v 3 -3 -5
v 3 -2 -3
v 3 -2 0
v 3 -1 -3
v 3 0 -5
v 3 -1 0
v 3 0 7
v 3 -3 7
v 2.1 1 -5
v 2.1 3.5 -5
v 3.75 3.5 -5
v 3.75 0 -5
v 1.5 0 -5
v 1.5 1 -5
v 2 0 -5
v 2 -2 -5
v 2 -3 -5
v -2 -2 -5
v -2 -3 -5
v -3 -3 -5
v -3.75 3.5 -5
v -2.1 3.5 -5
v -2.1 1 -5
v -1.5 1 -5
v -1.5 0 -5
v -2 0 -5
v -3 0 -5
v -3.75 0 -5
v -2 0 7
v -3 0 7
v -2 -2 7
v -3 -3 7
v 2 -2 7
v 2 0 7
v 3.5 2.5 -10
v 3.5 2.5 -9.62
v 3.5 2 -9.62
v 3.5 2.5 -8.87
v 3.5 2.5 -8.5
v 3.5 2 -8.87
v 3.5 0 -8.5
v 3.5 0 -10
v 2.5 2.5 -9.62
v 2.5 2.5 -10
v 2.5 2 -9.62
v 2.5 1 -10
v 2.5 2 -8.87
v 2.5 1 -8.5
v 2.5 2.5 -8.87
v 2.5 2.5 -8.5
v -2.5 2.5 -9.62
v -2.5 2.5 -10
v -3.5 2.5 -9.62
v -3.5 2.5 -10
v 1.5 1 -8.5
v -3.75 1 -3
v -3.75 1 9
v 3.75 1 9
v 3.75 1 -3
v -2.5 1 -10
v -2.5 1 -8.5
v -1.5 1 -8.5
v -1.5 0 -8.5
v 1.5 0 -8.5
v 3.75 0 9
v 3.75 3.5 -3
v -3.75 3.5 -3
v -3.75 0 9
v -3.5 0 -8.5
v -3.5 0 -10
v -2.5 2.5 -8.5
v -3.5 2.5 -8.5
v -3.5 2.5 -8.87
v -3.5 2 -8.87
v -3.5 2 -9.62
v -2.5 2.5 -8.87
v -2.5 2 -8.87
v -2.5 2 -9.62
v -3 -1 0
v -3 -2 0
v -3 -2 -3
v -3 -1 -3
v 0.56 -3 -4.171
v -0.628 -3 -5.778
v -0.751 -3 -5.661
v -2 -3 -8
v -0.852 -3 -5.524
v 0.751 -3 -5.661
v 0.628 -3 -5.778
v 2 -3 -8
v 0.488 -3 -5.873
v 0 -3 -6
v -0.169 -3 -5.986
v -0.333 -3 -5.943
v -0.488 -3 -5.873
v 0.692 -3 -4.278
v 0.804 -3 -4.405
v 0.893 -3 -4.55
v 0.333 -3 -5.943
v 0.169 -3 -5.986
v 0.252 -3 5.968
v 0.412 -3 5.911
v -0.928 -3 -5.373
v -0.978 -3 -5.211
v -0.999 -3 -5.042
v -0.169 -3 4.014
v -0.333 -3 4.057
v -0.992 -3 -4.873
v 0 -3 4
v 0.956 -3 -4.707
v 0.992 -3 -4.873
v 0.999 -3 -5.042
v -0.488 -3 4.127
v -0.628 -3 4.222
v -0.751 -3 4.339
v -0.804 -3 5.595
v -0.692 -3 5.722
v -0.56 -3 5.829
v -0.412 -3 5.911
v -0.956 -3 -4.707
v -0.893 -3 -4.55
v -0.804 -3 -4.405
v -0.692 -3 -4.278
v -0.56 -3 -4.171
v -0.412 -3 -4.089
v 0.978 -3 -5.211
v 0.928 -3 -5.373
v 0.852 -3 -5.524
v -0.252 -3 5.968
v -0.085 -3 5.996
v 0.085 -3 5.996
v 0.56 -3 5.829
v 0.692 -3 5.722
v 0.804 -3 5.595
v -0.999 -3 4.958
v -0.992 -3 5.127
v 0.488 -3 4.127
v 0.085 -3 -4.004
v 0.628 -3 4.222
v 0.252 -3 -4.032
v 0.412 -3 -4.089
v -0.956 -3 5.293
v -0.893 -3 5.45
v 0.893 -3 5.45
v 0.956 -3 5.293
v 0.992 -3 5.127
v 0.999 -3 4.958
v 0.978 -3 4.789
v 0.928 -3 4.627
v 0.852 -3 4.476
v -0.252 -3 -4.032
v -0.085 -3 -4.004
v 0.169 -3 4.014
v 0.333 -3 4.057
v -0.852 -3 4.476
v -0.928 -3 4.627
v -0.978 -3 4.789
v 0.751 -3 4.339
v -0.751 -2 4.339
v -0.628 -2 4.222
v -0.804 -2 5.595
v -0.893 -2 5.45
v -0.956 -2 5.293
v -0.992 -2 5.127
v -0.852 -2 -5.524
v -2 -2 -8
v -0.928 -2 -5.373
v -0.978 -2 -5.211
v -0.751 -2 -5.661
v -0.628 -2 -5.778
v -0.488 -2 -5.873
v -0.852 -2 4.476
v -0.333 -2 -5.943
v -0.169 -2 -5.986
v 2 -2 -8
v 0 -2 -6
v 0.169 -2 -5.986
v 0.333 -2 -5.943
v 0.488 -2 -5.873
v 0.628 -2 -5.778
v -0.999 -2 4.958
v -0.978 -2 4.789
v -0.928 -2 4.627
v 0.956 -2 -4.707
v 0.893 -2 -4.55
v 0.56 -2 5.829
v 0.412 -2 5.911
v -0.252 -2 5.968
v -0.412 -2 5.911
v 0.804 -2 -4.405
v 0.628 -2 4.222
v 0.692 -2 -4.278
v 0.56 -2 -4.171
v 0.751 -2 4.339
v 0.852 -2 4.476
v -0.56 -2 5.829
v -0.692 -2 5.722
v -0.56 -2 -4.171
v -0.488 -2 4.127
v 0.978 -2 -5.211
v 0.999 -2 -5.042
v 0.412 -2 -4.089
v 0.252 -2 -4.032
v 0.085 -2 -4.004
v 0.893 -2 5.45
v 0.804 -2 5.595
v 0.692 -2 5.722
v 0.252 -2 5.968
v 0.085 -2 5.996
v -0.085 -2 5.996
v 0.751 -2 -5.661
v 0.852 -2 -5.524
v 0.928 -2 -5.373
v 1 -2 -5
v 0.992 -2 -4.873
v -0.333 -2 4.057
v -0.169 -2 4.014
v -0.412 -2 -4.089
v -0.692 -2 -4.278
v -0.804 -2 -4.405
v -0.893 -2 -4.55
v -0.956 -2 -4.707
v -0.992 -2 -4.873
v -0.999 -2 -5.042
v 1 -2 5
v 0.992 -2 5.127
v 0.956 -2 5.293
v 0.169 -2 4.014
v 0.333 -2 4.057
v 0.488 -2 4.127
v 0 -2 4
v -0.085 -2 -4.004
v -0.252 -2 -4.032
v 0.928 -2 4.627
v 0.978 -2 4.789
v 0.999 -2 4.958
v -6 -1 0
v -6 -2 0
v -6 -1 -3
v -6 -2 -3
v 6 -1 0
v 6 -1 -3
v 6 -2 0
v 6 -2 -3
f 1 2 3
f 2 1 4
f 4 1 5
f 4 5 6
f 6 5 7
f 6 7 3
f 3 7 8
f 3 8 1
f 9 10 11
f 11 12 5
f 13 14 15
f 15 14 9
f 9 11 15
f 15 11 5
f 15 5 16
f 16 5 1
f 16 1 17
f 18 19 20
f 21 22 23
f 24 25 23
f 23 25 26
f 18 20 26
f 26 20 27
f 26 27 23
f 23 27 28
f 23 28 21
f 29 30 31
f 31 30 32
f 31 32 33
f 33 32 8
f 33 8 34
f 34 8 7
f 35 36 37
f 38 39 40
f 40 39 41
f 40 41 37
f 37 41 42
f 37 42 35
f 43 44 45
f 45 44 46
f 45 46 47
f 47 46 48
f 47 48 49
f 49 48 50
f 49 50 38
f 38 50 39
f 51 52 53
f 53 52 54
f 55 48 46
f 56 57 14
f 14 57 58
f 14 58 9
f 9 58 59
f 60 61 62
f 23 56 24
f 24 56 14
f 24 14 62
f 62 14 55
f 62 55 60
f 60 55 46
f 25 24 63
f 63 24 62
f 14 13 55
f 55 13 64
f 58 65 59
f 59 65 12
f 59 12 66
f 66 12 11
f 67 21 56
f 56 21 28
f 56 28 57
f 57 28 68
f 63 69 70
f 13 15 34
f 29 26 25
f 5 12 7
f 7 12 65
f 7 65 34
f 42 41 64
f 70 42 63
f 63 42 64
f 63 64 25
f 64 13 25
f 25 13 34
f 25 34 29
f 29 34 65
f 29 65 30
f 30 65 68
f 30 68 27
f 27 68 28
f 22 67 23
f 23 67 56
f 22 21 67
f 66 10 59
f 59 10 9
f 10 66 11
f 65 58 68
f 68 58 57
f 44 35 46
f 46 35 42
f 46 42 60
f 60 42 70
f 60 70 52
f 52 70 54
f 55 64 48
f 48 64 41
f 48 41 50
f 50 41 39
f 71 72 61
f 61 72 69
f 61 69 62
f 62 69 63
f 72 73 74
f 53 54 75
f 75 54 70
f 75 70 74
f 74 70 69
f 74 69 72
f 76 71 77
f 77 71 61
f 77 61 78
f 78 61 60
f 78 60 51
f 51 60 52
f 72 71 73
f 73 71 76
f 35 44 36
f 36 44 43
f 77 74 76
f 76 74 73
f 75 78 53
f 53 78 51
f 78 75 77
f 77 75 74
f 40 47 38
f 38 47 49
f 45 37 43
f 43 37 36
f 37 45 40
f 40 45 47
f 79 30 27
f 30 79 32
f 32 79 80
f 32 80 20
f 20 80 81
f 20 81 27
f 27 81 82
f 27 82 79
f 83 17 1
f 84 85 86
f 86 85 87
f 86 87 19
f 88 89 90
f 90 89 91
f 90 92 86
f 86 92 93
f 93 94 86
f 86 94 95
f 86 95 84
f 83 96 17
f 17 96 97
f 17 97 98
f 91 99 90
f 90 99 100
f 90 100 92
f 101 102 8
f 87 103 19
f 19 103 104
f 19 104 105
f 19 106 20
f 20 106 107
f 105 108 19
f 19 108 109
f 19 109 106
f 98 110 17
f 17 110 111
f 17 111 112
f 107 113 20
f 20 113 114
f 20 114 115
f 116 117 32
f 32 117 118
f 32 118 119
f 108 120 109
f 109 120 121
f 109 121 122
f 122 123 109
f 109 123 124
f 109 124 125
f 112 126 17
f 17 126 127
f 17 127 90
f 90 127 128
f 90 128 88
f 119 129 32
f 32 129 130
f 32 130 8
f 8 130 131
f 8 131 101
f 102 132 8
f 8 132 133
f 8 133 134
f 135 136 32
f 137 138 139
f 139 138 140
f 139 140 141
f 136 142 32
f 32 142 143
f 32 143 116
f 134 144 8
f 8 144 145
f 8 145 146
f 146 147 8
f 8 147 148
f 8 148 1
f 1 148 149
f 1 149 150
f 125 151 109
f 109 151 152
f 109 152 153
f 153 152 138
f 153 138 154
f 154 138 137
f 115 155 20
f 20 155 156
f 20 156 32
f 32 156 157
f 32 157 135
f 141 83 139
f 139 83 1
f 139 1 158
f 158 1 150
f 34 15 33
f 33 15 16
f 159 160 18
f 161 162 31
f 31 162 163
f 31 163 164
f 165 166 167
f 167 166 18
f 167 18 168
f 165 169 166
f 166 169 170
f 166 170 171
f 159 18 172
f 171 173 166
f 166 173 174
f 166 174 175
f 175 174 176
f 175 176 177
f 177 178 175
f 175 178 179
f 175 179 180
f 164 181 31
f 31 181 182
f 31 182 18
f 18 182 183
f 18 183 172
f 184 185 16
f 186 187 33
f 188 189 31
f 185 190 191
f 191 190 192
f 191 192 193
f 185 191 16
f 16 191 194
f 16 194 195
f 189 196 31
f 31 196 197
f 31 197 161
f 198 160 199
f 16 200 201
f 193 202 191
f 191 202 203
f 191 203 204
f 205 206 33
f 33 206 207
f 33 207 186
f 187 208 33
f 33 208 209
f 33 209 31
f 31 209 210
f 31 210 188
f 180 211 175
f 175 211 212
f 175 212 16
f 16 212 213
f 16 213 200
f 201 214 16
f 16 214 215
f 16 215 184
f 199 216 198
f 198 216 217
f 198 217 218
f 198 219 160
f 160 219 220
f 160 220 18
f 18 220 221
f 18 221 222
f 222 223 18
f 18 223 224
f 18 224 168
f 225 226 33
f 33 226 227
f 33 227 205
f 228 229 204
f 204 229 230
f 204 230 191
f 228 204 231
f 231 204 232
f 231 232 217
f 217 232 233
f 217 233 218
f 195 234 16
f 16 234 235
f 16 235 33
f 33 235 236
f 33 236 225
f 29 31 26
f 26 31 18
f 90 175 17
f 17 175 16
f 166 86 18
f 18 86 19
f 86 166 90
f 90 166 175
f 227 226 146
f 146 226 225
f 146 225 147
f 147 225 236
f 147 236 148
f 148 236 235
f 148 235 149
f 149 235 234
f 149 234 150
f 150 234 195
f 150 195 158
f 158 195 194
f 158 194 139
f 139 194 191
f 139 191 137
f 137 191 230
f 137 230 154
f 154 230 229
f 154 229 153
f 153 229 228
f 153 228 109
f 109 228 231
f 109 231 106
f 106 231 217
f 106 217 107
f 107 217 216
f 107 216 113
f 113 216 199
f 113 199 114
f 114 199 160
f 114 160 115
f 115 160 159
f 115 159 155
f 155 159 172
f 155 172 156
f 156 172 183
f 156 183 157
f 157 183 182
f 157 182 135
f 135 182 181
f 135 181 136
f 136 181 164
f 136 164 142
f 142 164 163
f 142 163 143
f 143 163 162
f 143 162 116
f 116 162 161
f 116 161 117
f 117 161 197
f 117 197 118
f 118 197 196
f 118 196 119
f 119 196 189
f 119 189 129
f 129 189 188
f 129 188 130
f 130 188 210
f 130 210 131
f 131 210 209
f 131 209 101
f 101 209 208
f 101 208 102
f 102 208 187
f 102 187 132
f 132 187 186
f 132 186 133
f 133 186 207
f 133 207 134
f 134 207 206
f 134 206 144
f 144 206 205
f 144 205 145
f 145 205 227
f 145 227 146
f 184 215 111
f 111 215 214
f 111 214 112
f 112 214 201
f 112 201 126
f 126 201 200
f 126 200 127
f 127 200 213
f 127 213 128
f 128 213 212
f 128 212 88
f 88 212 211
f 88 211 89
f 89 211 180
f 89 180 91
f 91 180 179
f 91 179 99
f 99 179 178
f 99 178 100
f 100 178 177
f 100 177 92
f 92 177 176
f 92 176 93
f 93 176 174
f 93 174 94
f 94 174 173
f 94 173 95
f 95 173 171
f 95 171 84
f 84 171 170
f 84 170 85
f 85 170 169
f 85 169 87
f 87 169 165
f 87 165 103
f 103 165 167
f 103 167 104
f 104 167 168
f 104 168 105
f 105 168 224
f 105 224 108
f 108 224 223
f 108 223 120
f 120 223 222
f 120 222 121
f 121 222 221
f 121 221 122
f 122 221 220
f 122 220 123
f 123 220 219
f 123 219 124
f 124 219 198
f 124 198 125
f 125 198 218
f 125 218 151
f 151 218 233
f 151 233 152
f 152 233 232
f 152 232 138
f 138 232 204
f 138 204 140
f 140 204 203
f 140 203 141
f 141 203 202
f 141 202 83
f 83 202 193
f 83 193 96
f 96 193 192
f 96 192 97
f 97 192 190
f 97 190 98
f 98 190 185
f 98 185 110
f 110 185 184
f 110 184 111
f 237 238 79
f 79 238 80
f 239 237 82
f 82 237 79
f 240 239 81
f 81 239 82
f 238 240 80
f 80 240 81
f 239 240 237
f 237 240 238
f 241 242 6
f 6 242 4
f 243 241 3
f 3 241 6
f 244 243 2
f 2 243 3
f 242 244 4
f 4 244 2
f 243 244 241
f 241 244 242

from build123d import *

# Parameters (mm, degrees)
SKETCH1_W            = 7.5
SKETCH1_H            = 10
BOSS_EXTRUDE1_DEPTH  = 1
BOSS_EXTRUDE2_DEPTH  = 2.5
SKETCH10_W           = 7.5
SKETCH10_H           = 1
BOSS_EXTRUDE5_DEPTH  = 2
SKETCH56_W           = 7.5
SKETCH56_H           = 1
BOSS_EXTRUDE17_DEPTH = 2
SKETCH57_W           = 3
SKETCH57_H           = 1
BOSS_EXTRUDE18_DEPTH = 5
SKETCH58_W           = 1.5
SKETCH58_H           = 1
BOSS_EXTRUDE19_DEPTH = 2
SKETCH59_W           = 1.5
SKETCH59_H           = 1
BOSS_EXTRUDE20_DEPTH = 2
SKETCH60_W           = 1
SKETCH60_H           = 1.5
BOSS_EXTRUDE23_DEPTH = 1.5
SKETCH61_W           = 1
SKETCH61_H           = 0.75
CUT_EXTRUDE1_DEPTH   = 0.5
SKETCH62_W           = 6
SKETCH62_H           = 12
BOSS_EXTRUDE25_DEPTH = 3
SKETCH64_W           = 4
SKETCH64_H           = 2
CUT_EXTRUDE2_DEPTH   = 12
SKETCH65_W           = 4
SKETCH65_H           = 1
BOSS_EXTRUDE26_DEPTH = 3
SKETCH66_R           = 1
CUT_EXTRUDE3_DEPTH   = 1
SKETCH67_W           = 3
SKETCH67_H           = 1
BOSS_EXTRUDE27_DEPTH = 3
SKETCH68_W           = 3
SKETCH68_H           = 1
BOSS_EXTRUDE28_DEPTH = 3


with BuildPart() as part:
    # Sketch1 → Boss-Extrude1 (new body)
    with BuildSketch(Plane(origin=(0, 0, 0), x_dir=(1, 0, 0), z_dir=(0, 1, 0))):
        Rectangle(SKETCH1_W, SKETCH1_H)
    extrude(amount=BOSS_EXTRUDE1_DEPTH)

    # Sketch2 → Boss-Extrude2 (add)
    with BuildSketch(Plane(origin=(0, 1, 0), x_dir=(1, 0, 0), z_dir=(0, 1, 0))):
        Polygon((-3.75, 3), (-2.1, 5), (-3.75, 5), align=None)
        Polygon((3.75, 5), (2.1, 5), (3.75, 3), align=None)
    extrude(amount=BOSS_EXTRUDE2_DEPTH)

    # Sketch10 → Boss-Extrude5 (add)
    with BuildSketch(Plane.XY.offset(5)):
        with Locations((0, 0.5)):
            Rectangle(SKETCH10_W, SKETCH10_H)
    extrude(amount=BOSS_EXTRUDE5_DEPTH)

    # Sketch56 → Boss-Extrude17 (add)
    with BuildSketch(Plane.XY.offset(7)):
        with Locations((0, 0.5)):
            Rectangle(SKETCH56_W, SKETCH56_H)
    extrude(amount=BOSS_EXTRUDE17_DEPTH)

    # Sketch57 → Boss-Extrude18 (add)
    with BuildSketch(Plane(origin=(0, 0, -5), x_dir=(-1, 0, 0), z_dir=(0, 0, -1))):
        with Locations((0, 0.5)):
            Rectangle(SKETCH57_W, SKETCH57_H)
    extrude(amount=BOSS_EXTRUDE18_DEPTH)

    # Sketch58 → Boss-Extrude19 (add)
    with BuildSketch(Plane(origin=(1.5, 0, 0), x_dir=(0, 0, -1), z_dir=(1, 0, 0))):
        with Locations((9.25, 0.5)):
            Rectangle(SKETCH58_W, SKETCH58_H)
    extrude(amount=BOSS_EXTRUDE19_DEPTH)

    # Sketch59 → Boss-Extrude20 (add)
    with BuildSketch(Plane.ZY.offset(1.5)):
        with Locations((-9.25, 0.5)):
            Rectangle(SKETCH59_W, SKETCH59_H)
    extrude(amount=BOSS_EXTRUDE20_DEPTH)

    # Sketch60 → Boss-Extrude23 (add)
    with BuildSketch(Plane(origin=(0, 1, 0), x_dir=(1, 0, 0), z_dir=(0, 1, 0))):
        with Locations((3, 9.25)):
            Rectangle(SKETCH60_W, SKETCH60_H)
        with Locations((-3, 9.25)):
            Rectangle(SKETCH60_W, SKETCH60_H)
    extrude(amount=BOSS_EXTRUDE23_DEPTH)

    # Sketch61 → Cut-Extrude1 (cut)
    with BuildSketch(Plane(origin=(0, 2.5, 0), x_dir=(1, 0, 0), z_dir=(0, 1, 0))):
        with Locations((-3, 9.245443114)):
            Rectangle(SKETCH61_W, SKETCH61_H)
        with Locations((3, 9.245443114)):
            Rectangle(SKETCH61_W, SKETCH61_H)
    extrude(amount=-CUT_EXTRUDE1_DEPTH, mode=Mode.SUBTRACT)

    # Sketch62 → Boss-Extrude25 (add)
    with BuildSketch(Plane(origin=(0, 0, 0), x_dir=(-1, 0, 0), z_dir=(0, -1, 0))):
        with Locations((0, -1)):
            Rectangle(SKETCH62_W, SKETCH62_H)
    extrude(amount=BOSS_EXTRUDE25_DEPTH)

    # Sketch64 → Cut-Extrude2 (cut)
    with BuildSketch(Plane.XY.offset(7)):
        with Locations((0, -1)):
            Rectangle(SKETCH64_W, SKETCH64_H)
    extrude(amount=-CUT_EXTRUDE2_DEPTH, mode=Mode.SUBTRACT)

    # Sketch65 → Boss-Extrude26 (add)
    with BuildSketch(Plane(origin=(0, 0, -5), x_dir=(-1, 0, 0), z_dir=(0, 0, -1))):
        with Locations((0, -2.5)):
            Rectangle(SKETCH65_W, SKETCH65_H)
    extrude(amount=BOSS_EXTRUDE26_DEPTH)

    # Sketch66 → Cut-Extrude3 (cut)
    with BuildSketch(Plane(origin=(0, -3, 0), x_dir=(-1, 0, 0), z_dir=(0, -1, 0))):
        with Locations((0, -5)):
            Circle(SKETCH66_R)
        with Locations((0, 5)):
            Circle(SKETCH66_R)
    extrude(amount=-CUT_EXTRUDE3_DEPTH, mode=Mode.SUBTRACT)

    # Sketch67 → Boss-Extrude27 (add)
    with BuildSketch(Plane.ZY.offset(3)):
        with Locations((-1.5, -1.5)):
            Rectangle(SKETCH67_W, SKETCH67_H)
    extrude(amount=BOSS_EXTRUDE27_DEPTH)

    # Sketch68 → Boss-Extrude28 (add)
    with BuildSketch(Plane(origin=(3, 0, 0), x_dir=(0, 0, -1), z_dir=(1, 0, 0))):
        with Locations((1.5, -1.5)):
            Rectangle(SKETCH68_W, SKETCH68_H)
    extrude(amount=BOSS_EXTRUDE28_DEPTH)


solid = part.part
